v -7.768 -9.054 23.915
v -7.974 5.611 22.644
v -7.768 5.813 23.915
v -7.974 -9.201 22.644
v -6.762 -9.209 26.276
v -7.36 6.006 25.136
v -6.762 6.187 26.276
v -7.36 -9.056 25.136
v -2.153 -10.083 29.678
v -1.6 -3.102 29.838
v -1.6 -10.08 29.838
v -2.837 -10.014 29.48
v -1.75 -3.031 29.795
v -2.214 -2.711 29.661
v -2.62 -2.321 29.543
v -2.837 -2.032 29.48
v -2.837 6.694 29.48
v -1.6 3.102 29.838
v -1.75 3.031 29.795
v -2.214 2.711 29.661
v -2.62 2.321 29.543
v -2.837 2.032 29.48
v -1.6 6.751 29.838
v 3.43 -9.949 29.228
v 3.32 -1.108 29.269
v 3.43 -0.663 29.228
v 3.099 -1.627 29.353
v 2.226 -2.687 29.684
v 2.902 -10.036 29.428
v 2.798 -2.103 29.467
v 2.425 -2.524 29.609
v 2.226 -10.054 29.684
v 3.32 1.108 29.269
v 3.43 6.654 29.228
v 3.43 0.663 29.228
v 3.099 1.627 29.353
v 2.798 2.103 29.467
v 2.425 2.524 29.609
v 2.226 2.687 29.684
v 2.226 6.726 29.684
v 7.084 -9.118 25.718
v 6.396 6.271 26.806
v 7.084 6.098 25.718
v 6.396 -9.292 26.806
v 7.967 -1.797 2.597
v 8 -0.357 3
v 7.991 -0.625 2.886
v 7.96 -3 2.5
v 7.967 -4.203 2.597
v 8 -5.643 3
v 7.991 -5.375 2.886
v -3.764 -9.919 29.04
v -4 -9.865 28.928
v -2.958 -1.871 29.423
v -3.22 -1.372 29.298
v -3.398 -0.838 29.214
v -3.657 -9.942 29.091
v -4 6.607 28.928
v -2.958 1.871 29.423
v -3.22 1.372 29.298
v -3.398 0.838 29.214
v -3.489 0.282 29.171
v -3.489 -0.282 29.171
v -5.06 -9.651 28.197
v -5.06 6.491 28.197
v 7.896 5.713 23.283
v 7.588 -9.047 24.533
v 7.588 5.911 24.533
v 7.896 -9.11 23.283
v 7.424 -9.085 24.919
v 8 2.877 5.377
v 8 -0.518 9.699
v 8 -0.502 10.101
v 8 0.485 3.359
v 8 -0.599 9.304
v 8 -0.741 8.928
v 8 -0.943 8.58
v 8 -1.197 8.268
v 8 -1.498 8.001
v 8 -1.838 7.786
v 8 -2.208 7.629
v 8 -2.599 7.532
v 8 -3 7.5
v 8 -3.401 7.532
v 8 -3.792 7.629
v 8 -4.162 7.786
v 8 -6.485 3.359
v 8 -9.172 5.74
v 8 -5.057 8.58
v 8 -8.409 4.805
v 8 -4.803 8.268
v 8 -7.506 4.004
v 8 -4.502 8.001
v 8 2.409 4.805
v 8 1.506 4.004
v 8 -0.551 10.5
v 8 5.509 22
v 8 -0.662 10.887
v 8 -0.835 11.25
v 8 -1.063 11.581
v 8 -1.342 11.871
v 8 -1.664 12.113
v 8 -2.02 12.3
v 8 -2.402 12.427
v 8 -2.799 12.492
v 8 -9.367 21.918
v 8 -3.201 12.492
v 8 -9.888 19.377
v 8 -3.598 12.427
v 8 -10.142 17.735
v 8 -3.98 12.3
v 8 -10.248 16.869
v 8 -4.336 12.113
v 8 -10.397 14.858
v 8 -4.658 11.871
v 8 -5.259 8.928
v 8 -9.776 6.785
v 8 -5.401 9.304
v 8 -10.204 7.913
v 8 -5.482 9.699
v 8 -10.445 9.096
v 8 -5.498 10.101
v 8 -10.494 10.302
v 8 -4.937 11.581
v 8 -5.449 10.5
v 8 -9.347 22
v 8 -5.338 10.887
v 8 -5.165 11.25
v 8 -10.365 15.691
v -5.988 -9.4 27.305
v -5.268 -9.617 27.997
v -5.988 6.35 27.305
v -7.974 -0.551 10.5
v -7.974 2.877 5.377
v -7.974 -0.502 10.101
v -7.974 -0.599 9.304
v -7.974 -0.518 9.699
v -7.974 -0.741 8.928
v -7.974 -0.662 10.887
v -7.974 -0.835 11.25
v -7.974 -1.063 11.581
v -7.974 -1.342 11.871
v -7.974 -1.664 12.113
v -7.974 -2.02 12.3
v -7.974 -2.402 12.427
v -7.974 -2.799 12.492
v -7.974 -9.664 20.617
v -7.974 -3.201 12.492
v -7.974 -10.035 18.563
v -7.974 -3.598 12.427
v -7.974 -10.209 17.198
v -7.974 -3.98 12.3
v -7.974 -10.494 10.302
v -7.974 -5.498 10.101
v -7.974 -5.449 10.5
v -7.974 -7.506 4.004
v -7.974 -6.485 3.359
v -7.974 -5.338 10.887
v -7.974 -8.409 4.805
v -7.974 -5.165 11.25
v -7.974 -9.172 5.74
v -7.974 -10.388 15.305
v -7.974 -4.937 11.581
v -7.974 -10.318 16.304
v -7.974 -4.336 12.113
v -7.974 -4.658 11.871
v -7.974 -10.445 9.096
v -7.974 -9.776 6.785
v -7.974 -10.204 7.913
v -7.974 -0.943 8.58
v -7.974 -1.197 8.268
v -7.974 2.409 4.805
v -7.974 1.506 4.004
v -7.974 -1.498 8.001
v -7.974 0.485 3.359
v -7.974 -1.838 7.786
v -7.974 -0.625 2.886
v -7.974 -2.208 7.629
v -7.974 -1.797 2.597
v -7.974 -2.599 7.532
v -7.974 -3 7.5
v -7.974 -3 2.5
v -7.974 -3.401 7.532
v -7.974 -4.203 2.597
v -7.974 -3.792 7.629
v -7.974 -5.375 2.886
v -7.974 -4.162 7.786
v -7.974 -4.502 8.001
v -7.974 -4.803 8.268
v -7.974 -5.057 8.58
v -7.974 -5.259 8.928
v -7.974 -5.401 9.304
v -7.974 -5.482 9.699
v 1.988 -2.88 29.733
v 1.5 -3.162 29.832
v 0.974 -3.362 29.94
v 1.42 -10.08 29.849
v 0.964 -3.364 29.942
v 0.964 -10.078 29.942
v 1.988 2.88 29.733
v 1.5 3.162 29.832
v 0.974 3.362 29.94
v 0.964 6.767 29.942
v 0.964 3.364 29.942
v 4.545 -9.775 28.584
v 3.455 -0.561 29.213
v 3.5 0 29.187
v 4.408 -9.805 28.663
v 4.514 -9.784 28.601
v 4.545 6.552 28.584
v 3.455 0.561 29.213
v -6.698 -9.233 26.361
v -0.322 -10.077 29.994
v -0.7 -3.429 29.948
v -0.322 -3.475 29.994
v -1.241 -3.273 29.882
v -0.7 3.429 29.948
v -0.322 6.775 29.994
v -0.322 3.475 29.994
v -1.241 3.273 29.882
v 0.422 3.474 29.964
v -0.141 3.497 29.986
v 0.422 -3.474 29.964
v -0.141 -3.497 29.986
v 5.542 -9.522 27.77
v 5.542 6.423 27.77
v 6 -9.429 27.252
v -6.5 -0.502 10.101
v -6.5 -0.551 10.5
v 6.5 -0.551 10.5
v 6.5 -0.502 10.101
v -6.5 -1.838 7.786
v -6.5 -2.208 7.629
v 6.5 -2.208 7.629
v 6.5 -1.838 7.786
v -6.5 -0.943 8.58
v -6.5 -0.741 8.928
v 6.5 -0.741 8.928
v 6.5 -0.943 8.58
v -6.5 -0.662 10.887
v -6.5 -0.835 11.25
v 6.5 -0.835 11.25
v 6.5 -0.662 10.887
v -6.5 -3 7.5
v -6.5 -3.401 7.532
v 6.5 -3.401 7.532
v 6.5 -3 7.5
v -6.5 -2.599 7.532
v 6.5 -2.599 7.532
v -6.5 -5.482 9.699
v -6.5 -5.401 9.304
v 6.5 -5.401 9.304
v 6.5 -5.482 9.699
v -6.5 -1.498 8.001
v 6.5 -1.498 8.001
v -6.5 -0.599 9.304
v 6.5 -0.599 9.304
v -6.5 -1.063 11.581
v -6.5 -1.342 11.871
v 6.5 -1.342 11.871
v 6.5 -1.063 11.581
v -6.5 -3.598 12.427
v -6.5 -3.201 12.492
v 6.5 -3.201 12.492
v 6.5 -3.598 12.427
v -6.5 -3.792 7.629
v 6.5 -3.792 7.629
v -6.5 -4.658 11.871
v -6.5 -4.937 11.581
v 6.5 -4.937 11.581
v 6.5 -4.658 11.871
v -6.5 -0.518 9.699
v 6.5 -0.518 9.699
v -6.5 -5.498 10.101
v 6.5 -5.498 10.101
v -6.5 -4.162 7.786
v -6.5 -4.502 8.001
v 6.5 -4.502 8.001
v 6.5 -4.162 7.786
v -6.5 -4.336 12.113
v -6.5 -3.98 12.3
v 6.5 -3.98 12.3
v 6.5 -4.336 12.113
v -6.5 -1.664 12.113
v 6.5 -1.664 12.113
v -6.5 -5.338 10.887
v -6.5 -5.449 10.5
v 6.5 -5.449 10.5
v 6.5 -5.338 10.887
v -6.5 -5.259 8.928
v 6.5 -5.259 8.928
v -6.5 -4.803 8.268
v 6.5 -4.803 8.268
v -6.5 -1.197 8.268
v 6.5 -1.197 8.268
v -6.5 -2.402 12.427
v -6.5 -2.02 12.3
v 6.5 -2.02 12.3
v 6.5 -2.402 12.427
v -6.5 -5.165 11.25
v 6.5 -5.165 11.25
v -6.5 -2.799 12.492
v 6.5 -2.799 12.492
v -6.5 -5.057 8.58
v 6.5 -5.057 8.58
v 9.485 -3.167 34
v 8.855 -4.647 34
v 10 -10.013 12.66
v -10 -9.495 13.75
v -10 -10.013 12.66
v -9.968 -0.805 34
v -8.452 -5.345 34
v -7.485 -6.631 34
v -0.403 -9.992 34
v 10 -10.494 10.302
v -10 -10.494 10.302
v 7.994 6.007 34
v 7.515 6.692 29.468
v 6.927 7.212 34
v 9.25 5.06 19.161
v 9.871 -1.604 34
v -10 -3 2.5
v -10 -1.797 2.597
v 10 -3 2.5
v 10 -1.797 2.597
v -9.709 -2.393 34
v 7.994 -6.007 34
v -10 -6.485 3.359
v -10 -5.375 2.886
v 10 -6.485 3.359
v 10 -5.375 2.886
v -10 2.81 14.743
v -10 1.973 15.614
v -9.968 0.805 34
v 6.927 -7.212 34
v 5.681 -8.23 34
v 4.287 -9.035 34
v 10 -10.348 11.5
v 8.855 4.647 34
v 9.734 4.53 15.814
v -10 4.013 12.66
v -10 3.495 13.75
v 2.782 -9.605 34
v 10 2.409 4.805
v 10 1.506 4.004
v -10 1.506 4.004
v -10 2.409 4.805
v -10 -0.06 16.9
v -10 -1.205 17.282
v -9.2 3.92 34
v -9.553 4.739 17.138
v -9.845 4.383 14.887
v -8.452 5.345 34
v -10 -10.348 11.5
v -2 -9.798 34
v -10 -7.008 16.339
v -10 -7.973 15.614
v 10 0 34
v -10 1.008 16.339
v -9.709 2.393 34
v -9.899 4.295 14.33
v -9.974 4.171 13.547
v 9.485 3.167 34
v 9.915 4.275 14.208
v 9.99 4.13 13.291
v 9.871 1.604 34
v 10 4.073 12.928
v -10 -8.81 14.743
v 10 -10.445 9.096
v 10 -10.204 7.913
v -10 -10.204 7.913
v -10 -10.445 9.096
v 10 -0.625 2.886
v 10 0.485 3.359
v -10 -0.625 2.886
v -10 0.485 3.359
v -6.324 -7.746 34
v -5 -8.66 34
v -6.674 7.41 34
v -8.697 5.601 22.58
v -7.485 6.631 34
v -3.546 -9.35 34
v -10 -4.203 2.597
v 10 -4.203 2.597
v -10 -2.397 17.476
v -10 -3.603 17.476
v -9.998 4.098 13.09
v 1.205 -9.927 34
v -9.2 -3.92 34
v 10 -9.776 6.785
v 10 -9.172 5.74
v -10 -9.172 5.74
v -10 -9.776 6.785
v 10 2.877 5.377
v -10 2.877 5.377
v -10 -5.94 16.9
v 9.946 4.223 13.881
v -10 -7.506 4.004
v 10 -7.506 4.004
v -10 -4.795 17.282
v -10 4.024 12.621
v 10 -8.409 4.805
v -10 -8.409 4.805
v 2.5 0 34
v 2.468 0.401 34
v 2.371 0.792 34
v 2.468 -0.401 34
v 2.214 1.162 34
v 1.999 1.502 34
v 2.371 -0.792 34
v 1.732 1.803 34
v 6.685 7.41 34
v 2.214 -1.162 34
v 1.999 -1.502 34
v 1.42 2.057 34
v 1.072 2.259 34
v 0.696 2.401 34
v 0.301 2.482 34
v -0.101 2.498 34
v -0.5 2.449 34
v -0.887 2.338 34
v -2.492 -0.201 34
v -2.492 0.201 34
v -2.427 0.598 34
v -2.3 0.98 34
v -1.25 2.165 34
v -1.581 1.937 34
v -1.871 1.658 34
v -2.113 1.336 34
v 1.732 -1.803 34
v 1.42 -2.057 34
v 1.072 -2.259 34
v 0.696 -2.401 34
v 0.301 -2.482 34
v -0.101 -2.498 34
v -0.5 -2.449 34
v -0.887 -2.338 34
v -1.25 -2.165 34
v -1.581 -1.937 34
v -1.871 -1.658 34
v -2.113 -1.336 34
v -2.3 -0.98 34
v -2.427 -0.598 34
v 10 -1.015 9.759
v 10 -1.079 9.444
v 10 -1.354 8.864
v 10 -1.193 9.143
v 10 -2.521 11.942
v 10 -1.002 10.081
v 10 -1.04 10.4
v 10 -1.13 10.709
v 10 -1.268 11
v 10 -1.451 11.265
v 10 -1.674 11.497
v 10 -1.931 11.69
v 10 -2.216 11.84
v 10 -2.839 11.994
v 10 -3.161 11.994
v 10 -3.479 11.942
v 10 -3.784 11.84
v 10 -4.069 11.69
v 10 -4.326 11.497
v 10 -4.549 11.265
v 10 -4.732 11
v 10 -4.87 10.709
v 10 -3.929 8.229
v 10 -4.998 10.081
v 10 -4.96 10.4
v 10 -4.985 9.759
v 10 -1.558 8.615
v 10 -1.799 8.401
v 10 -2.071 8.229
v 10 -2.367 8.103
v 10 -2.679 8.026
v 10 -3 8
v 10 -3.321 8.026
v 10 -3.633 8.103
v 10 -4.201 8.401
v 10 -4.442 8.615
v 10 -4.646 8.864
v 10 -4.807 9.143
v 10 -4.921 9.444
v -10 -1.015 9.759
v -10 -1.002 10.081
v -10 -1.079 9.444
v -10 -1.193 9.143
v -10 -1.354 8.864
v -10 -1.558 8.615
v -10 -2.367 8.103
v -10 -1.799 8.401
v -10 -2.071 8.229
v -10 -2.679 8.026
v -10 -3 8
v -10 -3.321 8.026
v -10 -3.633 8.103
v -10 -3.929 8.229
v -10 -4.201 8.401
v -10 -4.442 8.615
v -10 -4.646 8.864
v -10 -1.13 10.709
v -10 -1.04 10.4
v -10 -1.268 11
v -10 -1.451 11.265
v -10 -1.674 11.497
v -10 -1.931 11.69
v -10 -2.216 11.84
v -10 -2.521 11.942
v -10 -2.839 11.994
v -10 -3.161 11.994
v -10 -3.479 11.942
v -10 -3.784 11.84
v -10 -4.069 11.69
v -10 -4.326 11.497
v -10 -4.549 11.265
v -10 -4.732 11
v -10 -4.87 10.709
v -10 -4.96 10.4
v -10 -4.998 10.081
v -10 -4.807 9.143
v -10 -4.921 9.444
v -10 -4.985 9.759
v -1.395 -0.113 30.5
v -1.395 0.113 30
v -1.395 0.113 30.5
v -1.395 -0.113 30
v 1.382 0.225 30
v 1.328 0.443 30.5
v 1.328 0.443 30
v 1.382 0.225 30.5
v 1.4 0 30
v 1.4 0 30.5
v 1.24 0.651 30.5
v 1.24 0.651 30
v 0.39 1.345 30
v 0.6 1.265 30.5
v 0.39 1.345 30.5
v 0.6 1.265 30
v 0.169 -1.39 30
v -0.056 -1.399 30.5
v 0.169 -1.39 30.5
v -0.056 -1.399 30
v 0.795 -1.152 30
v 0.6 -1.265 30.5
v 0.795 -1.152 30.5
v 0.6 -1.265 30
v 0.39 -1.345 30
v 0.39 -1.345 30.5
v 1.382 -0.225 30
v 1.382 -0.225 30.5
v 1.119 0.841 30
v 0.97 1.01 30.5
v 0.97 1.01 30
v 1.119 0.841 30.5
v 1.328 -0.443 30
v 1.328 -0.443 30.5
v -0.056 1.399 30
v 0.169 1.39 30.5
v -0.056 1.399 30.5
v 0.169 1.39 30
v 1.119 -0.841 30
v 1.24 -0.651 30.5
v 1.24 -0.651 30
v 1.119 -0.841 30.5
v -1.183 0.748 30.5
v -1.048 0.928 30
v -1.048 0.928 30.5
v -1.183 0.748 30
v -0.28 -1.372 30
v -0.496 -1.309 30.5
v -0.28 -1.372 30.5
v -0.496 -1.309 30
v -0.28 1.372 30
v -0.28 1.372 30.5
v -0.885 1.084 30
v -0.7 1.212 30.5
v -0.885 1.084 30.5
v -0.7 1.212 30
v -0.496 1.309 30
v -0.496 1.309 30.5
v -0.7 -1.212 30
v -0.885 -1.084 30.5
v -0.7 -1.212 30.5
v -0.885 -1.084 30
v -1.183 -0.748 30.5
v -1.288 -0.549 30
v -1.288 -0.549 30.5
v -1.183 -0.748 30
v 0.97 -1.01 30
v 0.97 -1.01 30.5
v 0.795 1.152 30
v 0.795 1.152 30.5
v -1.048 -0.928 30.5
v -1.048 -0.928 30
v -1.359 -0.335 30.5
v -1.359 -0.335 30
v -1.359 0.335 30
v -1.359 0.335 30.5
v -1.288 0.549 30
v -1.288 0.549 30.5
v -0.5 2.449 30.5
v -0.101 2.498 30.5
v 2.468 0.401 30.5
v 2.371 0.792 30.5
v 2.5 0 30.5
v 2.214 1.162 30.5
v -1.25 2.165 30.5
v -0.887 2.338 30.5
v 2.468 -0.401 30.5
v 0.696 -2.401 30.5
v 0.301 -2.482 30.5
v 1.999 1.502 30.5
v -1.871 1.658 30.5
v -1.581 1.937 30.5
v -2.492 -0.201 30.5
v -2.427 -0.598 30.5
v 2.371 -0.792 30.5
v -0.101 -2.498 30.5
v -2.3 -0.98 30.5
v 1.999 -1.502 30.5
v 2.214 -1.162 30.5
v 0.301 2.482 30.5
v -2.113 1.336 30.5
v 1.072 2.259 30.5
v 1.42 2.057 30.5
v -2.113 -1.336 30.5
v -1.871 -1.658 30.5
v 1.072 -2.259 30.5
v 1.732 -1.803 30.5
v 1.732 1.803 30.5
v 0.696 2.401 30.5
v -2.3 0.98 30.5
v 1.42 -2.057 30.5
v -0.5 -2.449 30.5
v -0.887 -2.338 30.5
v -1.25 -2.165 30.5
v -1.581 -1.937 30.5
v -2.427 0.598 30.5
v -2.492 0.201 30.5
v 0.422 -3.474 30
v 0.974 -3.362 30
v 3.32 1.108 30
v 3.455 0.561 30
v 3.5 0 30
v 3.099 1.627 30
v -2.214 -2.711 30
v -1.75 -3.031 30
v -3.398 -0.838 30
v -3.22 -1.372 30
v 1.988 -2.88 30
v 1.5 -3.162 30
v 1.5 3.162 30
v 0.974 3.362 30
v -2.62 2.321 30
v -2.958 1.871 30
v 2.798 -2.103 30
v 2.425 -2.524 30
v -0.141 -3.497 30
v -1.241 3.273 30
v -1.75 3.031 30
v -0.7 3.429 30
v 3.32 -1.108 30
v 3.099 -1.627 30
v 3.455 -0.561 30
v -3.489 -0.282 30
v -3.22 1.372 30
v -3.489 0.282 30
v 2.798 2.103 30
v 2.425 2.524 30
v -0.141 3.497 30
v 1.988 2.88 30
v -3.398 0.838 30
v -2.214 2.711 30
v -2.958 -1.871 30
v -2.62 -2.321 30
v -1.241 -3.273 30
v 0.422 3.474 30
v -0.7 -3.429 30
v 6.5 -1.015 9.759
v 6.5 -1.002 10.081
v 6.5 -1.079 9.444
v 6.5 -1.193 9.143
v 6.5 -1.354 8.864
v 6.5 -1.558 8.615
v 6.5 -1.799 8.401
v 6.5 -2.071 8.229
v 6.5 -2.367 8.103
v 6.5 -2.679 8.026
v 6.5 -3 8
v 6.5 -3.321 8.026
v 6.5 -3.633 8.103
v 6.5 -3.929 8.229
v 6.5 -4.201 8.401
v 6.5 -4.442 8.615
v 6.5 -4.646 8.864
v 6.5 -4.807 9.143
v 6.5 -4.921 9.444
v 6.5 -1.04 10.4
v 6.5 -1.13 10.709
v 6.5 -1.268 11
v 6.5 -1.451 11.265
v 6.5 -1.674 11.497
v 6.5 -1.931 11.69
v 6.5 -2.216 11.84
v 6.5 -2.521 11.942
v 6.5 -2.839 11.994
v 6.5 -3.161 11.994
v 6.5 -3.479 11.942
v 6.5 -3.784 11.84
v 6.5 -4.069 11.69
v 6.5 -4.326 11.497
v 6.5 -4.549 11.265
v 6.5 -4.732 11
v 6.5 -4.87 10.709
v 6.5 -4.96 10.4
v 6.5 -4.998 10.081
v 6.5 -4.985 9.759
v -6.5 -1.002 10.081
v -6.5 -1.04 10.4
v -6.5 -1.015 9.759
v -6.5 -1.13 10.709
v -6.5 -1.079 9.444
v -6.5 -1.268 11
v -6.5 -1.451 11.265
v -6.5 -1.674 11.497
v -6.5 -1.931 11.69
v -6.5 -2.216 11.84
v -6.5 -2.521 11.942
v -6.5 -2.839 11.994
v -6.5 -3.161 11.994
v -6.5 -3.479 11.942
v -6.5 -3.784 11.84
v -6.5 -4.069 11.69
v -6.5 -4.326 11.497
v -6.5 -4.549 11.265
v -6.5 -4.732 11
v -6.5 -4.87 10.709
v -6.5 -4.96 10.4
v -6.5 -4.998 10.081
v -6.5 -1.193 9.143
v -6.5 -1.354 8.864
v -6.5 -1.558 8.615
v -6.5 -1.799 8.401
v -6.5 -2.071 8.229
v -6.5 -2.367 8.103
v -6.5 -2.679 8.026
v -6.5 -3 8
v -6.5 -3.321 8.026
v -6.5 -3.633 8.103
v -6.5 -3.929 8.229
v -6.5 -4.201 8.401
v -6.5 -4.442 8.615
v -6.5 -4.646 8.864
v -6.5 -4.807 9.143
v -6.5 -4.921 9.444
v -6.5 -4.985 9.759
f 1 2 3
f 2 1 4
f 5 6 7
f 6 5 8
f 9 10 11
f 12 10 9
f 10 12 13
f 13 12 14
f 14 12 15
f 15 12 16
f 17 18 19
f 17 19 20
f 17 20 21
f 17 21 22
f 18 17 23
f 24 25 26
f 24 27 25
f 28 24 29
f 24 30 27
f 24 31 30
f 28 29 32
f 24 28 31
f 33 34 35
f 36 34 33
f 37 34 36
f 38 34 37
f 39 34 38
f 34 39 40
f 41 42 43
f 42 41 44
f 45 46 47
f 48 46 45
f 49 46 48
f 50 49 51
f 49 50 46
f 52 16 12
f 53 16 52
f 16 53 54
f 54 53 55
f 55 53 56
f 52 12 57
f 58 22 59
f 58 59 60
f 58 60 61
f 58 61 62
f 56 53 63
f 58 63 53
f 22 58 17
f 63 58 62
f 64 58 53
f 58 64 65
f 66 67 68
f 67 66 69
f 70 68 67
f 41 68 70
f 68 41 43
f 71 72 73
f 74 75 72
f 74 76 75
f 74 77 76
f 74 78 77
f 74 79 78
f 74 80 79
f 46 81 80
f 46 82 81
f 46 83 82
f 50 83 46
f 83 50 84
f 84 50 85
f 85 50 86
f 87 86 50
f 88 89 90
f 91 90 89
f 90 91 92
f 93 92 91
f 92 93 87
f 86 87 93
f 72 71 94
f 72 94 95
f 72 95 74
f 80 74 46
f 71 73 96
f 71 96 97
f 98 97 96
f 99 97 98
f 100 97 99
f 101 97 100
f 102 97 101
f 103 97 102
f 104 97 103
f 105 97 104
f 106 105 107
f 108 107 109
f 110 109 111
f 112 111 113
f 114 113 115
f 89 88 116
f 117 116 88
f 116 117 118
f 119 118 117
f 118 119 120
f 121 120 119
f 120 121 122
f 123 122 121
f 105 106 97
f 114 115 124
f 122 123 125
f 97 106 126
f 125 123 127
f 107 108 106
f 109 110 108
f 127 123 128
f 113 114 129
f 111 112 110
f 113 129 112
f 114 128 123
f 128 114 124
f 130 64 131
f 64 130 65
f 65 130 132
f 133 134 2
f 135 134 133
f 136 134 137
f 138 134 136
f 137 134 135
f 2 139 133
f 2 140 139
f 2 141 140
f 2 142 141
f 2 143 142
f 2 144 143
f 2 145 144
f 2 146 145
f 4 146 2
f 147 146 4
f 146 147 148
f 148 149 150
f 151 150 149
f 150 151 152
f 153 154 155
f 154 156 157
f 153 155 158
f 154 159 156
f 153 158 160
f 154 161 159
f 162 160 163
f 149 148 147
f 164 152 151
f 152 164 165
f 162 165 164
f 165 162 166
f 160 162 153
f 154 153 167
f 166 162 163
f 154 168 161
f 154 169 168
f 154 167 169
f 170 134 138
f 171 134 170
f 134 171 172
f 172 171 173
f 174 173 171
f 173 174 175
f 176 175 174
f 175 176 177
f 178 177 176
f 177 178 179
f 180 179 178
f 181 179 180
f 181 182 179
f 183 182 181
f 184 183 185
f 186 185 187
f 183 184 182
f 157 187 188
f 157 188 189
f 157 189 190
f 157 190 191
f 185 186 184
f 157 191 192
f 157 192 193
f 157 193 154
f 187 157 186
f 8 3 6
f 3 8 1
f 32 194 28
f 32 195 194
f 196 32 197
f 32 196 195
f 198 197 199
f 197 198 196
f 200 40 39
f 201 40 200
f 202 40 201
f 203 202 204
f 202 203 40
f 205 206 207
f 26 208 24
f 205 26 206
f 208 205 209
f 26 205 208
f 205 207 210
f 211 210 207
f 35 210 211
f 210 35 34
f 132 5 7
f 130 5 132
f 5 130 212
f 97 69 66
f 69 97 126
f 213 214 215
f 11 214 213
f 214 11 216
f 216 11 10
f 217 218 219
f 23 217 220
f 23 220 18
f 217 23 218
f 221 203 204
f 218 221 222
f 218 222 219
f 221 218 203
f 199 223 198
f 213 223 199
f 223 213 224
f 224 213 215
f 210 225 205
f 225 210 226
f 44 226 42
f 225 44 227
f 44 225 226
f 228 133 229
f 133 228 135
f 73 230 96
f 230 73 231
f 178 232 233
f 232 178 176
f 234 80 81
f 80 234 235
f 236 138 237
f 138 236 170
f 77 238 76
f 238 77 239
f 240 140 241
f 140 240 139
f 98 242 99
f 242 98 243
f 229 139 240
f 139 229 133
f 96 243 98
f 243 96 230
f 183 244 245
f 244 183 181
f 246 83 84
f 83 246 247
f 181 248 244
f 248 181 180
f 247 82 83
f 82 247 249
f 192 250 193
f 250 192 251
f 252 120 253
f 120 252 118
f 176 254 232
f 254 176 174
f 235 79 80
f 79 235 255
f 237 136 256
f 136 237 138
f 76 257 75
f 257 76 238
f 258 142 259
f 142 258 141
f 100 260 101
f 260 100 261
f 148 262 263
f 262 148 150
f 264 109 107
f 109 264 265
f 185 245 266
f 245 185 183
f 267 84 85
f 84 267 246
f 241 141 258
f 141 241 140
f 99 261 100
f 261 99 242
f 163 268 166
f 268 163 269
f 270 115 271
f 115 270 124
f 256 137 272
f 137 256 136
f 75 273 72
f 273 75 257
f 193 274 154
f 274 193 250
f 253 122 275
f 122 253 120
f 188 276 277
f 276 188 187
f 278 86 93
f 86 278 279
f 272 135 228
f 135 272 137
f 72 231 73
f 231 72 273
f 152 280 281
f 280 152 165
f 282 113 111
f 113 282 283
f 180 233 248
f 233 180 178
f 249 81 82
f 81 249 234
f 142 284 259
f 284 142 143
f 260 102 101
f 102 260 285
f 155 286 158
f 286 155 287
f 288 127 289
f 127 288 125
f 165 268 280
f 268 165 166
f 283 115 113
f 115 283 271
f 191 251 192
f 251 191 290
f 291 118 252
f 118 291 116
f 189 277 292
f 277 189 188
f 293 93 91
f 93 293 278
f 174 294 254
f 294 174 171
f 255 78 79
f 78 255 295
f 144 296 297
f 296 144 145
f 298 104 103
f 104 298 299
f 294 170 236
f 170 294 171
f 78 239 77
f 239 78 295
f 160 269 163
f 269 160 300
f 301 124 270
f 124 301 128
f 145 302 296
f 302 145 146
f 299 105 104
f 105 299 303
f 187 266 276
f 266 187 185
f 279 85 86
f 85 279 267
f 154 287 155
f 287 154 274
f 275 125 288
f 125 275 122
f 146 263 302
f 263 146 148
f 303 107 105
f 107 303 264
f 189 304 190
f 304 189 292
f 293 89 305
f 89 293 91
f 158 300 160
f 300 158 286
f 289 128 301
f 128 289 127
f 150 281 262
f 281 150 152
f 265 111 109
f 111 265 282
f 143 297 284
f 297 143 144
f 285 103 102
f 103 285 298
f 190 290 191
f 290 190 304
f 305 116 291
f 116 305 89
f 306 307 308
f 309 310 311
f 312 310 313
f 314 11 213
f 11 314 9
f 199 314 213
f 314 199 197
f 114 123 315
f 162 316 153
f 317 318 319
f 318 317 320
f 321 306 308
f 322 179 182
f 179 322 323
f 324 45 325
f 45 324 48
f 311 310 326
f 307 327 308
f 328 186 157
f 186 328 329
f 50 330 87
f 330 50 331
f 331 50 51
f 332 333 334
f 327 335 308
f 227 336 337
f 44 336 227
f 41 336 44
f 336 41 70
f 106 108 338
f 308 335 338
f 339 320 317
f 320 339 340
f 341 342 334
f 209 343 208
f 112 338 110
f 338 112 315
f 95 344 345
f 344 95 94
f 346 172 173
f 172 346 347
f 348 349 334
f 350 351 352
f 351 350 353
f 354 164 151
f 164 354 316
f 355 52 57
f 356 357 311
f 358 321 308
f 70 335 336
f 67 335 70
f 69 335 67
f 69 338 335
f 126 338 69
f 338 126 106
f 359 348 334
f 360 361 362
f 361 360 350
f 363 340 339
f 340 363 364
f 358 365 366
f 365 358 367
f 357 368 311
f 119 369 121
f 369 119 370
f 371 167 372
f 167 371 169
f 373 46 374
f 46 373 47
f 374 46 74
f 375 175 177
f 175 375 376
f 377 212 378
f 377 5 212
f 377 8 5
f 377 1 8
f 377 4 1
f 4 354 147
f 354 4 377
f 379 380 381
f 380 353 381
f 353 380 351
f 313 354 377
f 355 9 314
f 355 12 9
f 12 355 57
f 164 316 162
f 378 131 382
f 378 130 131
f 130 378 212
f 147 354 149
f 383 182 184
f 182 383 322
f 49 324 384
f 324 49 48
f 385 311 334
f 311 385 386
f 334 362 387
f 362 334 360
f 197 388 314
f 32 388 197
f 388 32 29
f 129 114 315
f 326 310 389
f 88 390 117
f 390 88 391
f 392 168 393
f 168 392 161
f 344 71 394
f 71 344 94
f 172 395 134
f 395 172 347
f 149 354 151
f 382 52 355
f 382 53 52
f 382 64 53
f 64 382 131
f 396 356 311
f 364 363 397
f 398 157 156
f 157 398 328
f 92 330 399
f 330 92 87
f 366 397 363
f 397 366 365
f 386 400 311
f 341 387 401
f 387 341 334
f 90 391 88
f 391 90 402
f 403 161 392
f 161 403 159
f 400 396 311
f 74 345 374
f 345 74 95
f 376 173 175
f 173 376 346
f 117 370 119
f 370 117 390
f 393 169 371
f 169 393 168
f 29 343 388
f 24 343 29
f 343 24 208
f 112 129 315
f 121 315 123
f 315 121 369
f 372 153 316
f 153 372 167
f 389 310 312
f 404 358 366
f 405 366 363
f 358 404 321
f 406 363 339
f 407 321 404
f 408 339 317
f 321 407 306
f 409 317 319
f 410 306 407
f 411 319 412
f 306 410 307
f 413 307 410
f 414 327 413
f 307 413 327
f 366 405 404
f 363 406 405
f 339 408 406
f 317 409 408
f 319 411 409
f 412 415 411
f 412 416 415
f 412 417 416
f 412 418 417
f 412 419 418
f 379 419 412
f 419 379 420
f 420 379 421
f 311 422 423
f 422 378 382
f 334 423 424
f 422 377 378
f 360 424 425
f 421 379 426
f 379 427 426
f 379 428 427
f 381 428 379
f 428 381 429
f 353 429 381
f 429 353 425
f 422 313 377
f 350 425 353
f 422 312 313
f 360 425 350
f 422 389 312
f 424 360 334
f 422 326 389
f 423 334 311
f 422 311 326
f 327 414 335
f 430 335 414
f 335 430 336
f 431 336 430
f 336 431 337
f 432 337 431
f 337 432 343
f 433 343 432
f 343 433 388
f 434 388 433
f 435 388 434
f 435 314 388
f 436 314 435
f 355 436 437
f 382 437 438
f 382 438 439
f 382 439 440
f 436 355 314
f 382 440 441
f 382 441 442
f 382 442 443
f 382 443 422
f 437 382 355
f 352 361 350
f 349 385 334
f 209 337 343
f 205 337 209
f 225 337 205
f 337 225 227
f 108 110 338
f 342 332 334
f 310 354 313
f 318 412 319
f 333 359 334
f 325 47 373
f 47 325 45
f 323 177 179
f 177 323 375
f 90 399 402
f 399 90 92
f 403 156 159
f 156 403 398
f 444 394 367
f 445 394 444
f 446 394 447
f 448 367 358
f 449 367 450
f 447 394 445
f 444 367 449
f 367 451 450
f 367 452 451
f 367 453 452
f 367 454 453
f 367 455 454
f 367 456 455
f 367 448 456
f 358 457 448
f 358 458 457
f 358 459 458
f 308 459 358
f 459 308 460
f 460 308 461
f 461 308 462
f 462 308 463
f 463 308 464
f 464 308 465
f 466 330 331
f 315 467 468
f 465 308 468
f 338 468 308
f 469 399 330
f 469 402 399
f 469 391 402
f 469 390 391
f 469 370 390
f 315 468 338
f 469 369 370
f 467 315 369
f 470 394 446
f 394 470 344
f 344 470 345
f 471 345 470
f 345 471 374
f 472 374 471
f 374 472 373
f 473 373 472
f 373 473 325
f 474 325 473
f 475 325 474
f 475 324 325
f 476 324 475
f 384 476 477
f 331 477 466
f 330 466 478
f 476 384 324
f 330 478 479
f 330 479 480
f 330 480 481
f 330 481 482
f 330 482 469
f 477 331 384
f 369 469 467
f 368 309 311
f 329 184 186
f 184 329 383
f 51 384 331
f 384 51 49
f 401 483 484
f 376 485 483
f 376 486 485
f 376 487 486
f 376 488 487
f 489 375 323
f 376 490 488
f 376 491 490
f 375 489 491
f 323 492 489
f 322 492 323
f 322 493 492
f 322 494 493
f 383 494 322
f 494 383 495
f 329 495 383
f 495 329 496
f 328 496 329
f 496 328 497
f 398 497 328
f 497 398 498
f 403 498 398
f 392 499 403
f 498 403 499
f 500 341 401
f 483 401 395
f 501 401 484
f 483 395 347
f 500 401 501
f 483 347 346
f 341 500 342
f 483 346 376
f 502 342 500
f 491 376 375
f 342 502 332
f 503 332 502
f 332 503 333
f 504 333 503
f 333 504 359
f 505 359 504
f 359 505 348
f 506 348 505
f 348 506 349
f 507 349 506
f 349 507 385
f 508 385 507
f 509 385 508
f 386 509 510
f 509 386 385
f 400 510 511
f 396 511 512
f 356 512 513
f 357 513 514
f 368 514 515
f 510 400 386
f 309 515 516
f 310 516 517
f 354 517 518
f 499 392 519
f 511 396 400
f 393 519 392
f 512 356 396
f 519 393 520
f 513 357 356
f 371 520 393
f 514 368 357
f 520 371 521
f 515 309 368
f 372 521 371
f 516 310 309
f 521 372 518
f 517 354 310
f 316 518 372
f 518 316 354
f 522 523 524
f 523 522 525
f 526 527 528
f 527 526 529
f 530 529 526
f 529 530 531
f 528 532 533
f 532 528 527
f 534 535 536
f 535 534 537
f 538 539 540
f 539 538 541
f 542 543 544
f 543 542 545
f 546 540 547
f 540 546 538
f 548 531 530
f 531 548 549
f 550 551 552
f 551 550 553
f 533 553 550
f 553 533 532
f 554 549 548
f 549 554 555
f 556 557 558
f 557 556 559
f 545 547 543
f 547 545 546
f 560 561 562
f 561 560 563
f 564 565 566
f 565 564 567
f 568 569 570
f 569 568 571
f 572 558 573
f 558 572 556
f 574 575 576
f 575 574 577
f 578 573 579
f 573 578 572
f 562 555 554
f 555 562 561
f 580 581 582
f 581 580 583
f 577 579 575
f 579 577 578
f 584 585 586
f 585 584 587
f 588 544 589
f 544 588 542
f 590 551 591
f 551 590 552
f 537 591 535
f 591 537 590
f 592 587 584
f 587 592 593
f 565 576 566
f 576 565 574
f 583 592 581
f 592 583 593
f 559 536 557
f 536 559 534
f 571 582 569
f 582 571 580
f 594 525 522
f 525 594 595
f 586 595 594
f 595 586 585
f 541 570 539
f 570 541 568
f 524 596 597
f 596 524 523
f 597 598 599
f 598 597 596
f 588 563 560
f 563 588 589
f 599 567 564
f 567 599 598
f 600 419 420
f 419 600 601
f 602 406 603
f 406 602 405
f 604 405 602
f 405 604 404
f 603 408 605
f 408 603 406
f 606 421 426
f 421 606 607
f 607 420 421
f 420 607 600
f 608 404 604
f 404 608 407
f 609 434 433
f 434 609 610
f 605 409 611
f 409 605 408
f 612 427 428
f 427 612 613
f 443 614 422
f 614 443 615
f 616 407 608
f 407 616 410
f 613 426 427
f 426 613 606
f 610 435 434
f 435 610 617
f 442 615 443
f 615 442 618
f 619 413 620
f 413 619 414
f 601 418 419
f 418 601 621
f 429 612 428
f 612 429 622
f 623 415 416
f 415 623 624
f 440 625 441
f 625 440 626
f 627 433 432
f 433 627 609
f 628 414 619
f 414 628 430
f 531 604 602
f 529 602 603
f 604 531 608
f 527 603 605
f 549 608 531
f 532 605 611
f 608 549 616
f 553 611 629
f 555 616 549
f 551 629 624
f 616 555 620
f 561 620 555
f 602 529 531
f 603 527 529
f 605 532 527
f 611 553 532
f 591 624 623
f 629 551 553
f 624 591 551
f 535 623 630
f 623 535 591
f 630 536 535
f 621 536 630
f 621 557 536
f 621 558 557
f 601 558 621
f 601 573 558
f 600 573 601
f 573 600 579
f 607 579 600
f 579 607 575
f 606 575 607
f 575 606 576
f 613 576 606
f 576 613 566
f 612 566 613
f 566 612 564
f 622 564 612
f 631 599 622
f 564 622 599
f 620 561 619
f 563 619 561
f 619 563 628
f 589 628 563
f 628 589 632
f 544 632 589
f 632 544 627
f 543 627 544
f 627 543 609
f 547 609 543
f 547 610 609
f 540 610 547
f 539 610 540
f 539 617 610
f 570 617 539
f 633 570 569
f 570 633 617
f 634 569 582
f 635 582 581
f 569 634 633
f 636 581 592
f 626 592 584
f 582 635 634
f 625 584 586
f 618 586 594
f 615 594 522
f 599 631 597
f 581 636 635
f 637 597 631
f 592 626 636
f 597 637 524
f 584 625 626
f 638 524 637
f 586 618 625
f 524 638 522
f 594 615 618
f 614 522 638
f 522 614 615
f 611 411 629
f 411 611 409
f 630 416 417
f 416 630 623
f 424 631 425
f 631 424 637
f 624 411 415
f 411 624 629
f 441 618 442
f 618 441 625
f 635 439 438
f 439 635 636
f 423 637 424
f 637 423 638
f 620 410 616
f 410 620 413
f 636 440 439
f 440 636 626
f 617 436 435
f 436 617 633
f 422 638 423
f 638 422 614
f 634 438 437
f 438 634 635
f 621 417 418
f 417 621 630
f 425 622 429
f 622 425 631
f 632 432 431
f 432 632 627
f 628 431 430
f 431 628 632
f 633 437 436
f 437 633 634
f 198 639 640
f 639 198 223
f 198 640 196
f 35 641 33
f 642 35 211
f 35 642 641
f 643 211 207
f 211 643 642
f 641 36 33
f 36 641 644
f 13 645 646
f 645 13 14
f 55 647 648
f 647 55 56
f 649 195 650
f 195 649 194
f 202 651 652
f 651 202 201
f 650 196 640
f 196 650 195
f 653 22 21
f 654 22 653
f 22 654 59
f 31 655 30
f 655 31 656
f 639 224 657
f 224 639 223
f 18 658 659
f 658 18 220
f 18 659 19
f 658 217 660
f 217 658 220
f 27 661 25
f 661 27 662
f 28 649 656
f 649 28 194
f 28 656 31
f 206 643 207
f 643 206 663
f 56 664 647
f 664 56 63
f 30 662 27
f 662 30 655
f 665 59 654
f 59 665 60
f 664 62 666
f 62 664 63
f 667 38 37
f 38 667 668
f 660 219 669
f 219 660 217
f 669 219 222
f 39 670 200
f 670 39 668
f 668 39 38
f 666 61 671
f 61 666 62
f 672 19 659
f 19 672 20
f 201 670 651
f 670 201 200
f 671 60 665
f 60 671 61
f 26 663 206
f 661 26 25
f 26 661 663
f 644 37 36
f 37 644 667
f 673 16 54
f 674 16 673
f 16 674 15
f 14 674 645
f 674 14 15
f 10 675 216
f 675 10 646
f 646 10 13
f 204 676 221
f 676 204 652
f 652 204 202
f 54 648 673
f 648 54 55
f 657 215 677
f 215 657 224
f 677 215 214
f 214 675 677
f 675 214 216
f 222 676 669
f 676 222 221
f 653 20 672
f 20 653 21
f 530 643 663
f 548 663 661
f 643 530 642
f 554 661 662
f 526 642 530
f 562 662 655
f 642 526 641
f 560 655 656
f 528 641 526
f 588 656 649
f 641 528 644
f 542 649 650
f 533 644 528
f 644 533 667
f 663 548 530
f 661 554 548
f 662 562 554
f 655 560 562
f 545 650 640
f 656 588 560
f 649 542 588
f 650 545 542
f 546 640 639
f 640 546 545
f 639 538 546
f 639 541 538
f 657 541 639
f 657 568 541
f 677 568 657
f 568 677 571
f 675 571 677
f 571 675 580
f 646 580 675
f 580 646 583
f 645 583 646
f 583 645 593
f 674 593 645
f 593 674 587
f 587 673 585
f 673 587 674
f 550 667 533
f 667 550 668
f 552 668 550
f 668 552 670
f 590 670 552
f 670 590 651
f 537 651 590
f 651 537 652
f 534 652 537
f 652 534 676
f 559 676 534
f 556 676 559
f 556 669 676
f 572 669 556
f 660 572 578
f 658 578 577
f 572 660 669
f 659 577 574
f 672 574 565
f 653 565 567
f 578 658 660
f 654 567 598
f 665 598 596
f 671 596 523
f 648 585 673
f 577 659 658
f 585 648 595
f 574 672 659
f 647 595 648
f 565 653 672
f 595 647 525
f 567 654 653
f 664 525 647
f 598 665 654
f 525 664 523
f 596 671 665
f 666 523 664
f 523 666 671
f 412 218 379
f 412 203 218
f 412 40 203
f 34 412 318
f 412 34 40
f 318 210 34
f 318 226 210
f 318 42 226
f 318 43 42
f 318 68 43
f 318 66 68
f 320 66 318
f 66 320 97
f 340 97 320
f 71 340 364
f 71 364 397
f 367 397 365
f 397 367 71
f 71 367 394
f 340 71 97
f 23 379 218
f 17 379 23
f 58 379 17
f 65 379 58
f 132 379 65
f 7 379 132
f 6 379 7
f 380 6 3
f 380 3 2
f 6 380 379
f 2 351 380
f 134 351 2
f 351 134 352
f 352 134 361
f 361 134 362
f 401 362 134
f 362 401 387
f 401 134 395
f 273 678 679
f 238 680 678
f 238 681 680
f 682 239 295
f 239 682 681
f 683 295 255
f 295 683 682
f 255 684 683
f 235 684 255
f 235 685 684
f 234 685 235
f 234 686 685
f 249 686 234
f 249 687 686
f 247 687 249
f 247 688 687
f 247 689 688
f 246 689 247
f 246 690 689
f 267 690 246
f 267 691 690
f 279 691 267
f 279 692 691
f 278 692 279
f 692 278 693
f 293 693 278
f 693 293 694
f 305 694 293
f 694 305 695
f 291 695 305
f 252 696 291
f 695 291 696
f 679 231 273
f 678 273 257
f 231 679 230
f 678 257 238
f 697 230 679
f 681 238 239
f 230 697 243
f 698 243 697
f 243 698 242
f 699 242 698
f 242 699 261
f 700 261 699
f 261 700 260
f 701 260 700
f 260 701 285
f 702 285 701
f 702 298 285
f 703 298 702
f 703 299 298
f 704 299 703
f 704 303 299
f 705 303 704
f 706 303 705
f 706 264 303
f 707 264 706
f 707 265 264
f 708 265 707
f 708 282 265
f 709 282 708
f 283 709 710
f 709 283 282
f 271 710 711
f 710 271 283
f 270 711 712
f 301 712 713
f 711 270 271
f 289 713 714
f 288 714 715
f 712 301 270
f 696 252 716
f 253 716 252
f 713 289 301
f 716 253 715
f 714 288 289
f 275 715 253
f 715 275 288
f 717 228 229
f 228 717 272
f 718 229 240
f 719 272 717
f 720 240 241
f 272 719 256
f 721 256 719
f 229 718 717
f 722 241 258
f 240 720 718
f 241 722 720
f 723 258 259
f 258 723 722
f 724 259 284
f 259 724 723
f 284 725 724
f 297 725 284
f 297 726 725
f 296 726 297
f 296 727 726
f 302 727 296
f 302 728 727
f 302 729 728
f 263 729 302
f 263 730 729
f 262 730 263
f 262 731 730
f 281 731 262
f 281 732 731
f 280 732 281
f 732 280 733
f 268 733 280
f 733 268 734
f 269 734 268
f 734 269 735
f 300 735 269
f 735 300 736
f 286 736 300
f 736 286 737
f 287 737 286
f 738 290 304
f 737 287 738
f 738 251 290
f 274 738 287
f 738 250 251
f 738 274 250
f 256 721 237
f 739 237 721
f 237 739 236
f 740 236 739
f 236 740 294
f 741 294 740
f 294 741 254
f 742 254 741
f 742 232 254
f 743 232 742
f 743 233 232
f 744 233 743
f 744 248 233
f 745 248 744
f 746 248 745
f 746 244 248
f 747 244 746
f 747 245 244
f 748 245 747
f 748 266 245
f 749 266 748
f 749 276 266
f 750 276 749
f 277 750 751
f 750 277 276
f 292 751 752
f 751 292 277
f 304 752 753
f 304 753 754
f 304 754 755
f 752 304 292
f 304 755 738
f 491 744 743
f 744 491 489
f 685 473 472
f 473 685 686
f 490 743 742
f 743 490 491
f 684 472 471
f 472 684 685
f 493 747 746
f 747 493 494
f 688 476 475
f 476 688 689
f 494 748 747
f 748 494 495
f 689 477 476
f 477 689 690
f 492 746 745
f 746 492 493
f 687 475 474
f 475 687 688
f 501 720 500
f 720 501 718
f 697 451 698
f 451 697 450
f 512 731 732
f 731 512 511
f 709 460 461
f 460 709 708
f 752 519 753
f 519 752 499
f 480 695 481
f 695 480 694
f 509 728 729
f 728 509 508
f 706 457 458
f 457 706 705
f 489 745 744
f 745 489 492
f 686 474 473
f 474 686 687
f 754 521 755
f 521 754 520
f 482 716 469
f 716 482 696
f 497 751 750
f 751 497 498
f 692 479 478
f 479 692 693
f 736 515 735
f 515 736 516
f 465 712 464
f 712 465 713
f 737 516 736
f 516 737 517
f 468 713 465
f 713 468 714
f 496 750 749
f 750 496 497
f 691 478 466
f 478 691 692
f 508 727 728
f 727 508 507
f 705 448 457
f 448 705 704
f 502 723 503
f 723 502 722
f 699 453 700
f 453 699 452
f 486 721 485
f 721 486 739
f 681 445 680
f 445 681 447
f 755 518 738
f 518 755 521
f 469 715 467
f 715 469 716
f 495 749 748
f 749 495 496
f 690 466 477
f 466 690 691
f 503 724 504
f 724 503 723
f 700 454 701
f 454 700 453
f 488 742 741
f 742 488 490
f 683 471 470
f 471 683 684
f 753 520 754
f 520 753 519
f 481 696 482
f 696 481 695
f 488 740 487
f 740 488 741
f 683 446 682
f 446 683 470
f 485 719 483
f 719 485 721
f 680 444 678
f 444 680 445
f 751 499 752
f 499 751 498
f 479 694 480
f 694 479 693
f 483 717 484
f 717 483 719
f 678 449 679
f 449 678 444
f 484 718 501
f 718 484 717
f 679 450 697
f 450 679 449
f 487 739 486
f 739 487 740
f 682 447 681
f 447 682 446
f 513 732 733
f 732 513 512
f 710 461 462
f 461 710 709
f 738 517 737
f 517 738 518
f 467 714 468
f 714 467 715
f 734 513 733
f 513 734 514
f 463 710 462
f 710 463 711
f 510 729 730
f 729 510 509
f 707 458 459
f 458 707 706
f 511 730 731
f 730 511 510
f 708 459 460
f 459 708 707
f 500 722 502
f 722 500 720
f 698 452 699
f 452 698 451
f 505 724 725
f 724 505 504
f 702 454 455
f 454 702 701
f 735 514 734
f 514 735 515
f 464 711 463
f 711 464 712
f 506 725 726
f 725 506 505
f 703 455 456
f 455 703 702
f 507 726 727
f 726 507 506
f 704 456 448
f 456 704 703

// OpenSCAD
H=19;
$fn=39;
difference() {
hull() {
  translate([0,0,15])  cylinder(d1=15, d2=20, h=H);    
  translate([0,-3,10])  rotate([0,90,0]) cylinder(h=20,d=15, center=true);
}
translate([0,0,H+10])
*for(i = [1: 4]) rotate([0,0,-45+i*90]) {
    translate([5,0,0])  cylinder(d=1, h=9);
    translate([8,0,0]) cylinder(d=1, h=9);
}

    cylinder(d=2.8, h=166);    
#translate([0,0,H+11.5]) cylinder(d=5, h=166);    
translate([0,0,H+11-5]) cylinder(d=7, h=5);    

 rotate([-9,0,0])   translate([-20,2,-10]) cube([40,20,160]);

difference() {    
    rotate([90,0,0])    hull() {
           translate([0,3,0])  cylinder(d=16,h=90, center = true);
          translate([0,H+3,0]) cylinder(d=16,h=90, center=true);
          
        }
          translate([0,-3,10])  rotate([0,90,0]) 
        cylinder(h=100,d=5, center=true);

    }
      translate([0,-3,10])  rotate([0,90,0]) cylinder(h=13,d=6, center=true);

  translate([0,-3,10])  rotate([0,90,0]) cylinder(h=100,d=4, center=true);

}

  translate([0,-3,10]) 
rotate([0,90,0])
%cylinder(d=30, h=12,center=true);
